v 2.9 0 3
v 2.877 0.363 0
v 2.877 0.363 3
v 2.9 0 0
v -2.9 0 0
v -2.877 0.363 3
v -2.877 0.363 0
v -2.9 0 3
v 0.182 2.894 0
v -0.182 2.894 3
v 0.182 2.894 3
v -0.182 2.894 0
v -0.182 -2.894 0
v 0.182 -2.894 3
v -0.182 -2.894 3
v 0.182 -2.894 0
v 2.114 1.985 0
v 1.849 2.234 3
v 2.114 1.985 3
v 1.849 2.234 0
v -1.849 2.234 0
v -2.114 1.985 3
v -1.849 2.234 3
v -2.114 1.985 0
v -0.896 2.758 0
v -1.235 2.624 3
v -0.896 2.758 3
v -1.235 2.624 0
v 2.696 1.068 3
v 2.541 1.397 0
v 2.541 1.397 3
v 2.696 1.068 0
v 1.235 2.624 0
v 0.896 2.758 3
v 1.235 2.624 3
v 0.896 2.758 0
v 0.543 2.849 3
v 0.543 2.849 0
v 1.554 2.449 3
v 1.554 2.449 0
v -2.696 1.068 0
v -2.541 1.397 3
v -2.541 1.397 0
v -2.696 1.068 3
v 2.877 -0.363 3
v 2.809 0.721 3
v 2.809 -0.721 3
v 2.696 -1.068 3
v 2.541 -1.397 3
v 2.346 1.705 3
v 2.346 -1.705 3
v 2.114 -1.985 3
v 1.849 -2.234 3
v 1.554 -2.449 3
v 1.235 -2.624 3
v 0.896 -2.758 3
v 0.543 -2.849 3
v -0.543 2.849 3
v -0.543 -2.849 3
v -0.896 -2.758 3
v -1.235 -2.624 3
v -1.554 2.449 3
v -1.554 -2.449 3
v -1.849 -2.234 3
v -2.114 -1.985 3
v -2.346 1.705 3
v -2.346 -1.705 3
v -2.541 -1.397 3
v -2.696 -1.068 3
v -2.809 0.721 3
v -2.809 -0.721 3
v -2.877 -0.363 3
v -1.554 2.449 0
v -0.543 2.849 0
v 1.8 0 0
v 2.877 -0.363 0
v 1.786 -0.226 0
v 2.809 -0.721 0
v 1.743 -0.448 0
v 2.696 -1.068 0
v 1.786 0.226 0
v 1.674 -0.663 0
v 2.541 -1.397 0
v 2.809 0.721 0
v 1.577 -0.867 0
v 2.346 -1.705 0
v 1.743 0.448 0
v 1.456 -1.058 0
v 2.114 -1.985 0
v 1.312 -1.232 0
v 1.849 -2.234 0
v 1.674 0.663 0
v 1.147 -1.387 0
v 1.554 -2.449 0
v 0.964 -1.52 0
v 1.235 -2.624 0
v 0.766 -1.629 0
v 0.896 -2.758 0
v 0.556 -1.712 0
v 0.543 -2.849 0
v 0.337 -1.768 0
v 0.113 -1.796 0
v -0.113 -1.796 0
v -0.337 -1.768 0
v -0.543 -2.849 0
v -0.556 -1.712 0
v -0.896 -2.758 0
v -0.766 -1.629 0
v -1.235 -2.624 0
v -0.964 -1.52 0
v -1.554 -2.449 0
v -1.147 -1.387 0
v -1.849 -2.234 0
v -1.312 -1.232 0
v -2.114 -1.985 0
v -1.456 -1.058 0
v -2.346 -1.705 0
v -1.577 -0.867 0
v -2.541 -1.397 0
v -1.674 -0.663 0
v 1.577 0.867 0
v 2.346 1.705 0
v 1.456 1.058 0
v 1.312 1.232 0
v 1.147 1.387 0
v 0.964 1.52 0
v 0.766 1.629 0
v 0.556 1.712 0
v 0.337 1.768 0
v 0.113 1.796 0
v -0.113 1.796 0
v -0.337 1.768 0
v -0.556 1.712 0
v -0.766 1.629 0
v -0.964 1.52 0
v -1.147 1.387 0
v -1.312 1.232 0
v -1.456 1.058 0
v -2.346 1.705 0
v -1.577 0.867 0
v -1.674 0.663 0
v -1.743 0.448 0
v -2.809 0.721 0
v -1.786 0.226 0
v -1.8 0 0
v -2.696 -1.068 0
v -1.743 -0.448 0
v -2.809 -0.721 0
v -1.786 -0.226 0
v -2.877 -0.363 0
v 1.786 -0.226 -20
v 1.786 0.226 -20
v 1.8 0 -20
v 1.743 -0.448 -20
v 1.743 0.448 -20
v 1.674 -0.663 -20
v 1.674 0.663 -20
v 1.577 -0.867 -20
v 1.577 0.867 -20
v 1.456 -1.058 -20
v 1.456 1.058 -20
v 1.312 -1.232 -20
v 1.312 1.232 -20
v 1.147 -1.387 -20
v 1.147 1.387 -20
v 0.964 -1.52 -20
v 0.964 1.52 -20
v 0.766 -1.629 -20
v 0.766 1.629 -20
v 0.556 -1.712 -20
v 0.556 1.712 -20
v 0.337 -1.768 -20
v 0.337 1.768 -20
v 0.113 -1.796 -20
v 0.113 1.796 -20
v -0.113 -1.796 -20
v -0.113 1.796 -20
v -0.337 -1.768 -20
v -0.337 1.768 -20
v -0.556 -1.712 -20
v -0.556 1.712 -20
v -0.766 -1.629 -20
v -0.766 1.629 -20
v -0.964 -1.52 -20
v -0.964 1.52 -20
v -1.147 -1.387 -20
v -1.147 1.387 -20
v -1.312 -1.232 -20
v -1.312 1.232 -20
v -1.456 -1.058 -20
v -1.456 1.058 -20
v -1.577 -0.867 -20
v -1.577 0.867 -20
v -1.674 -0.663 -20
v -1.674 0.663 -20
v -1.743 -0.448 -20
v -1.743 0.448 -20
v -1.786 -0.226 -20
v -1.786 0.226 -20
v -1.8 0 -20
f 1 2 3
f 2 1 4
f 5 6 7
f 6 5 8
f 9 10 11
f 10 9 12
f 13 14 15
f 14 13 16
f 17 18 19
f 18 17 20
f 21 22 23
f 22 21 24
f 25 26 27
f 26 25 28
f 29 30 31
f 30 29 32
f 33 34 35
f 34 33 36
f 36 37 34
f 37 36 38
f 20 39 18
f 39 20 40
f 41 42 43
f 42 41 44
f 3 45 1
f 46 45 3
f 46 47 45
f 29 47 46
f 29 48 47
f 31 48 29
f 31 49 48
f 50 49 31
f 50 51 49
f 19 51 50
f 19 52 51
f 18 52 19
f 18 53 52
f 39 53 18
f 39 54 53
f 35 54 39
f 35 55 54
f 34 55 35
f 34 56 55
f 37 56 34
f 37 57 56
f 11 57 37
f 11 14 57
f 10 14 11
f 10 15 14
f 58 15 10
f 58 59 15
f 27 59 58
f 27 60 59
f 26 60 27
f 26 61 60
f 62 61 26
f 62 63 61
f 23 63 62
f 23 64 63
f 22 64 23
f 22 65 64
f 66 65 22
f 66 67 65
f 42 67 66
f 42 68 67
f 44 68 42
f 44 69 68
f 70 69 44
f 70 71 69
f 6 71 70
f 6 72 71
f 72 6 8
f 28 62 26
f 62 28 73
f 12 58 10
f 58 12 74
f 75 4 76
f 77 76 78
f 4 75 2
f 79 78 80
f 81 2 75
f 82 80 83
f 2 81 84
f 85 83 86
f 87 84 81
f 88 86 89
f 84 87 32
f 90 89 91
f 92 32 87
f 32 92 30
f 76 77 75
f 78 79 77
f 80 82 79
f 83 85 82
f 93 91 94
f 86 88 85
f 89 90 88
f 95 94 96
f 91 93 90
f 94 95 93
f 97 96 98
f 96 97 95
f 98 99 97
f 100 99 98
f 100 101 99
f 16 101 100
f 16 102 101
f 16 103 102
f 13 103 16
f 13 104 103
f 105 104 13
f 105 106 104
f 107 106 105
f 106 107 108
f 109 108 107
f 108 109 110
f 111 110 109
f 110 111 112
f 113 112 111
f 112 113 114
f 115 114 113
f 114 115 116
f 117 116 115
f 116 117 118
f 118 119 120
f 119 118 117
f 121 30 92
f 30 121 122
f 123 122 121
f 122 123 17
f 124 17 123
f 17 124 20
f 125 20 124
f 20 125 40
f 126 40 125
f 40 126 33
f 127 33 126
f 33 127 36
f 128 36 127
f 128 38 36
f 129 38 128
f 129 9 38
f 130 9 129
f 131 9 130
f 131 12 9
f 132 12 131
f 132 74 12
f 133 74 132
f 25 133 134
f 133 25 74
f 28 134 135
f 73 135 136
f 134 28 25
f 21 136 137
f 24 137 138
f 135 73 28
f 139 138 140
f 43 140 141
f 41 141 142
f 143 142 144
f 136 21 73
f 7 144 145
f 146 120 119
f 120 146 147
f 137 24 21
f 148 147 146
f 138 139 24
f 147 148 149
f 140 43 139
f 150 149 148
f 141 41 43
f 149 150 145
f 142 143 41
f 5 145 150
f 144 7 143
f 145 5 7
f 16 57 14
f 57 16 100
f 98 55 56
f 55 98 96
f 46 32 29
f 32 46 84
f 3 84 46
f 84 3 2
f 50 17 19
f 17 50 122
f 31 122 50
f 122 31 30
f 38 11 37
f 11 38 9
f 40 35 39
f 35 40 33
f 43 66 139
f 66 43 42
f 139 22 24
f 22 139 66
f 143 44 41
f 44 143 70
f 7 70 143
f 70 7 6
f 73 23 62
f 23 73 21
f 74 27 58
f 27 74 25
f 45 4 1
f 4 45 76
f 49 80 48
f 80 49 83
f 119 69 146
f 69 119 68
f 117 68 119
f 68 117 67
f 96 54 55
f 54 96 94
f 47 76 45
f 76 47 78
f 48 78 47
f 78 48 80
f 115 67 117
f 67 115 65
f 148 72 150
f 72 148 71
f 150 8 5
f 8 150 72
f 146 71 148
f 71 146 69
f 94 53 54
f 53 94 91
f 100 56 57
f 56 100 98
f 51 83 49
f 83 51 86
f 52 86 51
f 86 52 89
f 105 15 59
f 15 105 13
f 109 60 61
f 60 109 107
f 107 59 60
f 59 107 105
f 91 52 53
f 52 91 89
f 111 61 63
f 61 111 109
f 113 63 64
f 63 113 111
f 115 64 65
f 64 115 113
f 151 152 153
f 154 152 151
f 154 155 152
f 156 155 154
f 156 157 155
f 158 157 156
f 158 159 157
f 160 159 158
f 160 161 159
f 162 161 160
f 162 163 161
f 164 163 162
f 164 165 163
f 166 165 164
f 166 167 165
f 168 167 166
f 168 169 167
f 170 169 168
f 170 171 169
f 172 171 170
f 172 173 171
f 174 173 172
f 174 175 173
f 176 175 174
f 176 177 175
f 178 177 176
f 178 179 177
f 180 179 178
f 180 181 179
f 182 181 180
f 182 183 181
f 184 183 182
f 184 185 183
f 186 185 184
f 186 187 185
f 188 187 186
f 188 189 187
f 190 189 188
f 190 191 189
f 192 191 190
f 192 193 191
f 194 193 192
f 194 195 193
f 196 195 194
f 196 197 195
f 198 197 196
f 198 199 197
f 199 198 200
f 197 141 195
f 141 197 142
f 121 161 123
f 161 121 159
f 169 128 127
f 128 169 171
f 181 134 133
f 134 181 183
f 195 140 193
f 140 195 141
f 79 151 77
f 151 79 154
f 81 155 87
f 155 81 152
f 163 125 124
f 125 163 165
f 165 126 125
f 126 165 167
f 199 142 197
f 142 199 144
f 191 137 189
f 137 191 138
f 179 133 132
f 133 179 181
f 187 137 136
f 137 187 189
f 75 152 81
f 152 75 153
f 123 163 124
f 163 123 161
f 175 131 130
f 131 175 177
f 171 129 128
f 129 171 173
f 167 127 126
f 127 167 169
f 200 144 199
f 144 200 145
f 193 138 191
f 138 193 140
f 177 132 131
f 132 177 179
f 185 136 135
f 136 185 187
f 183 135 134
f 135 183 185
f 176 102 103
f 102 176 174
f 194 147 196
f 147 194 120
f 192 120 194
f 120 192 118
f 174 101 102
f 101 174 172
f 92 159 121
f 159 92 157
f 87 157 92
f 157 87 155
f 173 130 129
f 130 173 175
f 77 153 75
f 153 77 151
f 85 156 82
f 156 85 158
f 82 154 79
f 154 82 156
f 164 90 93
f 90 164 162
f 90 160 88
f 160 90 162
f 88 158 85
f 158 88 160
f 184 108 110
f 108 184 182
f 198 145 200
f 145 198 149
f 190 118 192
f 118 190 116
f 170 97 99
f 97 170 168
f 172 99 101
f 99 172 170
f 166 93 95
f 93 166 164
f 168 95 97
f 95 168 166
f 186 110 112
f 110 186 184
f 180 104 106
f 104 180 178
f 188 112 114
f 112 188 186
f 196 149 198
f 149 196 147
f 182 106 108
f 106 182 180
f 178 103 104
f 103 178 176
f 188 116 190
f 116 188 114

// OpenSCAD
$fn = 50;


difference() {
	union() {
		translate(v = [0, 0, 0]) {
			rotate(a = [0, 0, 0]) {
				difference() {
					union() {
						cylinder(h = 3, r = 2.9000000000);
						translate(v = [0, 0, -20.0000000000]) {
							cylinder(h = 20, r = 1.5000000000);
						}
						translate(v = [0, 0, -20.0000000000]) {
							cylinder(h = 20, r = 1.8000000000);
						}
						translate(v = [0, 0, -20.0000000000]) {
							cylinder(h = 20, r = 1.5000000000);
						}
					}
					union();
				}
			}
		}
	}
	union();
}
